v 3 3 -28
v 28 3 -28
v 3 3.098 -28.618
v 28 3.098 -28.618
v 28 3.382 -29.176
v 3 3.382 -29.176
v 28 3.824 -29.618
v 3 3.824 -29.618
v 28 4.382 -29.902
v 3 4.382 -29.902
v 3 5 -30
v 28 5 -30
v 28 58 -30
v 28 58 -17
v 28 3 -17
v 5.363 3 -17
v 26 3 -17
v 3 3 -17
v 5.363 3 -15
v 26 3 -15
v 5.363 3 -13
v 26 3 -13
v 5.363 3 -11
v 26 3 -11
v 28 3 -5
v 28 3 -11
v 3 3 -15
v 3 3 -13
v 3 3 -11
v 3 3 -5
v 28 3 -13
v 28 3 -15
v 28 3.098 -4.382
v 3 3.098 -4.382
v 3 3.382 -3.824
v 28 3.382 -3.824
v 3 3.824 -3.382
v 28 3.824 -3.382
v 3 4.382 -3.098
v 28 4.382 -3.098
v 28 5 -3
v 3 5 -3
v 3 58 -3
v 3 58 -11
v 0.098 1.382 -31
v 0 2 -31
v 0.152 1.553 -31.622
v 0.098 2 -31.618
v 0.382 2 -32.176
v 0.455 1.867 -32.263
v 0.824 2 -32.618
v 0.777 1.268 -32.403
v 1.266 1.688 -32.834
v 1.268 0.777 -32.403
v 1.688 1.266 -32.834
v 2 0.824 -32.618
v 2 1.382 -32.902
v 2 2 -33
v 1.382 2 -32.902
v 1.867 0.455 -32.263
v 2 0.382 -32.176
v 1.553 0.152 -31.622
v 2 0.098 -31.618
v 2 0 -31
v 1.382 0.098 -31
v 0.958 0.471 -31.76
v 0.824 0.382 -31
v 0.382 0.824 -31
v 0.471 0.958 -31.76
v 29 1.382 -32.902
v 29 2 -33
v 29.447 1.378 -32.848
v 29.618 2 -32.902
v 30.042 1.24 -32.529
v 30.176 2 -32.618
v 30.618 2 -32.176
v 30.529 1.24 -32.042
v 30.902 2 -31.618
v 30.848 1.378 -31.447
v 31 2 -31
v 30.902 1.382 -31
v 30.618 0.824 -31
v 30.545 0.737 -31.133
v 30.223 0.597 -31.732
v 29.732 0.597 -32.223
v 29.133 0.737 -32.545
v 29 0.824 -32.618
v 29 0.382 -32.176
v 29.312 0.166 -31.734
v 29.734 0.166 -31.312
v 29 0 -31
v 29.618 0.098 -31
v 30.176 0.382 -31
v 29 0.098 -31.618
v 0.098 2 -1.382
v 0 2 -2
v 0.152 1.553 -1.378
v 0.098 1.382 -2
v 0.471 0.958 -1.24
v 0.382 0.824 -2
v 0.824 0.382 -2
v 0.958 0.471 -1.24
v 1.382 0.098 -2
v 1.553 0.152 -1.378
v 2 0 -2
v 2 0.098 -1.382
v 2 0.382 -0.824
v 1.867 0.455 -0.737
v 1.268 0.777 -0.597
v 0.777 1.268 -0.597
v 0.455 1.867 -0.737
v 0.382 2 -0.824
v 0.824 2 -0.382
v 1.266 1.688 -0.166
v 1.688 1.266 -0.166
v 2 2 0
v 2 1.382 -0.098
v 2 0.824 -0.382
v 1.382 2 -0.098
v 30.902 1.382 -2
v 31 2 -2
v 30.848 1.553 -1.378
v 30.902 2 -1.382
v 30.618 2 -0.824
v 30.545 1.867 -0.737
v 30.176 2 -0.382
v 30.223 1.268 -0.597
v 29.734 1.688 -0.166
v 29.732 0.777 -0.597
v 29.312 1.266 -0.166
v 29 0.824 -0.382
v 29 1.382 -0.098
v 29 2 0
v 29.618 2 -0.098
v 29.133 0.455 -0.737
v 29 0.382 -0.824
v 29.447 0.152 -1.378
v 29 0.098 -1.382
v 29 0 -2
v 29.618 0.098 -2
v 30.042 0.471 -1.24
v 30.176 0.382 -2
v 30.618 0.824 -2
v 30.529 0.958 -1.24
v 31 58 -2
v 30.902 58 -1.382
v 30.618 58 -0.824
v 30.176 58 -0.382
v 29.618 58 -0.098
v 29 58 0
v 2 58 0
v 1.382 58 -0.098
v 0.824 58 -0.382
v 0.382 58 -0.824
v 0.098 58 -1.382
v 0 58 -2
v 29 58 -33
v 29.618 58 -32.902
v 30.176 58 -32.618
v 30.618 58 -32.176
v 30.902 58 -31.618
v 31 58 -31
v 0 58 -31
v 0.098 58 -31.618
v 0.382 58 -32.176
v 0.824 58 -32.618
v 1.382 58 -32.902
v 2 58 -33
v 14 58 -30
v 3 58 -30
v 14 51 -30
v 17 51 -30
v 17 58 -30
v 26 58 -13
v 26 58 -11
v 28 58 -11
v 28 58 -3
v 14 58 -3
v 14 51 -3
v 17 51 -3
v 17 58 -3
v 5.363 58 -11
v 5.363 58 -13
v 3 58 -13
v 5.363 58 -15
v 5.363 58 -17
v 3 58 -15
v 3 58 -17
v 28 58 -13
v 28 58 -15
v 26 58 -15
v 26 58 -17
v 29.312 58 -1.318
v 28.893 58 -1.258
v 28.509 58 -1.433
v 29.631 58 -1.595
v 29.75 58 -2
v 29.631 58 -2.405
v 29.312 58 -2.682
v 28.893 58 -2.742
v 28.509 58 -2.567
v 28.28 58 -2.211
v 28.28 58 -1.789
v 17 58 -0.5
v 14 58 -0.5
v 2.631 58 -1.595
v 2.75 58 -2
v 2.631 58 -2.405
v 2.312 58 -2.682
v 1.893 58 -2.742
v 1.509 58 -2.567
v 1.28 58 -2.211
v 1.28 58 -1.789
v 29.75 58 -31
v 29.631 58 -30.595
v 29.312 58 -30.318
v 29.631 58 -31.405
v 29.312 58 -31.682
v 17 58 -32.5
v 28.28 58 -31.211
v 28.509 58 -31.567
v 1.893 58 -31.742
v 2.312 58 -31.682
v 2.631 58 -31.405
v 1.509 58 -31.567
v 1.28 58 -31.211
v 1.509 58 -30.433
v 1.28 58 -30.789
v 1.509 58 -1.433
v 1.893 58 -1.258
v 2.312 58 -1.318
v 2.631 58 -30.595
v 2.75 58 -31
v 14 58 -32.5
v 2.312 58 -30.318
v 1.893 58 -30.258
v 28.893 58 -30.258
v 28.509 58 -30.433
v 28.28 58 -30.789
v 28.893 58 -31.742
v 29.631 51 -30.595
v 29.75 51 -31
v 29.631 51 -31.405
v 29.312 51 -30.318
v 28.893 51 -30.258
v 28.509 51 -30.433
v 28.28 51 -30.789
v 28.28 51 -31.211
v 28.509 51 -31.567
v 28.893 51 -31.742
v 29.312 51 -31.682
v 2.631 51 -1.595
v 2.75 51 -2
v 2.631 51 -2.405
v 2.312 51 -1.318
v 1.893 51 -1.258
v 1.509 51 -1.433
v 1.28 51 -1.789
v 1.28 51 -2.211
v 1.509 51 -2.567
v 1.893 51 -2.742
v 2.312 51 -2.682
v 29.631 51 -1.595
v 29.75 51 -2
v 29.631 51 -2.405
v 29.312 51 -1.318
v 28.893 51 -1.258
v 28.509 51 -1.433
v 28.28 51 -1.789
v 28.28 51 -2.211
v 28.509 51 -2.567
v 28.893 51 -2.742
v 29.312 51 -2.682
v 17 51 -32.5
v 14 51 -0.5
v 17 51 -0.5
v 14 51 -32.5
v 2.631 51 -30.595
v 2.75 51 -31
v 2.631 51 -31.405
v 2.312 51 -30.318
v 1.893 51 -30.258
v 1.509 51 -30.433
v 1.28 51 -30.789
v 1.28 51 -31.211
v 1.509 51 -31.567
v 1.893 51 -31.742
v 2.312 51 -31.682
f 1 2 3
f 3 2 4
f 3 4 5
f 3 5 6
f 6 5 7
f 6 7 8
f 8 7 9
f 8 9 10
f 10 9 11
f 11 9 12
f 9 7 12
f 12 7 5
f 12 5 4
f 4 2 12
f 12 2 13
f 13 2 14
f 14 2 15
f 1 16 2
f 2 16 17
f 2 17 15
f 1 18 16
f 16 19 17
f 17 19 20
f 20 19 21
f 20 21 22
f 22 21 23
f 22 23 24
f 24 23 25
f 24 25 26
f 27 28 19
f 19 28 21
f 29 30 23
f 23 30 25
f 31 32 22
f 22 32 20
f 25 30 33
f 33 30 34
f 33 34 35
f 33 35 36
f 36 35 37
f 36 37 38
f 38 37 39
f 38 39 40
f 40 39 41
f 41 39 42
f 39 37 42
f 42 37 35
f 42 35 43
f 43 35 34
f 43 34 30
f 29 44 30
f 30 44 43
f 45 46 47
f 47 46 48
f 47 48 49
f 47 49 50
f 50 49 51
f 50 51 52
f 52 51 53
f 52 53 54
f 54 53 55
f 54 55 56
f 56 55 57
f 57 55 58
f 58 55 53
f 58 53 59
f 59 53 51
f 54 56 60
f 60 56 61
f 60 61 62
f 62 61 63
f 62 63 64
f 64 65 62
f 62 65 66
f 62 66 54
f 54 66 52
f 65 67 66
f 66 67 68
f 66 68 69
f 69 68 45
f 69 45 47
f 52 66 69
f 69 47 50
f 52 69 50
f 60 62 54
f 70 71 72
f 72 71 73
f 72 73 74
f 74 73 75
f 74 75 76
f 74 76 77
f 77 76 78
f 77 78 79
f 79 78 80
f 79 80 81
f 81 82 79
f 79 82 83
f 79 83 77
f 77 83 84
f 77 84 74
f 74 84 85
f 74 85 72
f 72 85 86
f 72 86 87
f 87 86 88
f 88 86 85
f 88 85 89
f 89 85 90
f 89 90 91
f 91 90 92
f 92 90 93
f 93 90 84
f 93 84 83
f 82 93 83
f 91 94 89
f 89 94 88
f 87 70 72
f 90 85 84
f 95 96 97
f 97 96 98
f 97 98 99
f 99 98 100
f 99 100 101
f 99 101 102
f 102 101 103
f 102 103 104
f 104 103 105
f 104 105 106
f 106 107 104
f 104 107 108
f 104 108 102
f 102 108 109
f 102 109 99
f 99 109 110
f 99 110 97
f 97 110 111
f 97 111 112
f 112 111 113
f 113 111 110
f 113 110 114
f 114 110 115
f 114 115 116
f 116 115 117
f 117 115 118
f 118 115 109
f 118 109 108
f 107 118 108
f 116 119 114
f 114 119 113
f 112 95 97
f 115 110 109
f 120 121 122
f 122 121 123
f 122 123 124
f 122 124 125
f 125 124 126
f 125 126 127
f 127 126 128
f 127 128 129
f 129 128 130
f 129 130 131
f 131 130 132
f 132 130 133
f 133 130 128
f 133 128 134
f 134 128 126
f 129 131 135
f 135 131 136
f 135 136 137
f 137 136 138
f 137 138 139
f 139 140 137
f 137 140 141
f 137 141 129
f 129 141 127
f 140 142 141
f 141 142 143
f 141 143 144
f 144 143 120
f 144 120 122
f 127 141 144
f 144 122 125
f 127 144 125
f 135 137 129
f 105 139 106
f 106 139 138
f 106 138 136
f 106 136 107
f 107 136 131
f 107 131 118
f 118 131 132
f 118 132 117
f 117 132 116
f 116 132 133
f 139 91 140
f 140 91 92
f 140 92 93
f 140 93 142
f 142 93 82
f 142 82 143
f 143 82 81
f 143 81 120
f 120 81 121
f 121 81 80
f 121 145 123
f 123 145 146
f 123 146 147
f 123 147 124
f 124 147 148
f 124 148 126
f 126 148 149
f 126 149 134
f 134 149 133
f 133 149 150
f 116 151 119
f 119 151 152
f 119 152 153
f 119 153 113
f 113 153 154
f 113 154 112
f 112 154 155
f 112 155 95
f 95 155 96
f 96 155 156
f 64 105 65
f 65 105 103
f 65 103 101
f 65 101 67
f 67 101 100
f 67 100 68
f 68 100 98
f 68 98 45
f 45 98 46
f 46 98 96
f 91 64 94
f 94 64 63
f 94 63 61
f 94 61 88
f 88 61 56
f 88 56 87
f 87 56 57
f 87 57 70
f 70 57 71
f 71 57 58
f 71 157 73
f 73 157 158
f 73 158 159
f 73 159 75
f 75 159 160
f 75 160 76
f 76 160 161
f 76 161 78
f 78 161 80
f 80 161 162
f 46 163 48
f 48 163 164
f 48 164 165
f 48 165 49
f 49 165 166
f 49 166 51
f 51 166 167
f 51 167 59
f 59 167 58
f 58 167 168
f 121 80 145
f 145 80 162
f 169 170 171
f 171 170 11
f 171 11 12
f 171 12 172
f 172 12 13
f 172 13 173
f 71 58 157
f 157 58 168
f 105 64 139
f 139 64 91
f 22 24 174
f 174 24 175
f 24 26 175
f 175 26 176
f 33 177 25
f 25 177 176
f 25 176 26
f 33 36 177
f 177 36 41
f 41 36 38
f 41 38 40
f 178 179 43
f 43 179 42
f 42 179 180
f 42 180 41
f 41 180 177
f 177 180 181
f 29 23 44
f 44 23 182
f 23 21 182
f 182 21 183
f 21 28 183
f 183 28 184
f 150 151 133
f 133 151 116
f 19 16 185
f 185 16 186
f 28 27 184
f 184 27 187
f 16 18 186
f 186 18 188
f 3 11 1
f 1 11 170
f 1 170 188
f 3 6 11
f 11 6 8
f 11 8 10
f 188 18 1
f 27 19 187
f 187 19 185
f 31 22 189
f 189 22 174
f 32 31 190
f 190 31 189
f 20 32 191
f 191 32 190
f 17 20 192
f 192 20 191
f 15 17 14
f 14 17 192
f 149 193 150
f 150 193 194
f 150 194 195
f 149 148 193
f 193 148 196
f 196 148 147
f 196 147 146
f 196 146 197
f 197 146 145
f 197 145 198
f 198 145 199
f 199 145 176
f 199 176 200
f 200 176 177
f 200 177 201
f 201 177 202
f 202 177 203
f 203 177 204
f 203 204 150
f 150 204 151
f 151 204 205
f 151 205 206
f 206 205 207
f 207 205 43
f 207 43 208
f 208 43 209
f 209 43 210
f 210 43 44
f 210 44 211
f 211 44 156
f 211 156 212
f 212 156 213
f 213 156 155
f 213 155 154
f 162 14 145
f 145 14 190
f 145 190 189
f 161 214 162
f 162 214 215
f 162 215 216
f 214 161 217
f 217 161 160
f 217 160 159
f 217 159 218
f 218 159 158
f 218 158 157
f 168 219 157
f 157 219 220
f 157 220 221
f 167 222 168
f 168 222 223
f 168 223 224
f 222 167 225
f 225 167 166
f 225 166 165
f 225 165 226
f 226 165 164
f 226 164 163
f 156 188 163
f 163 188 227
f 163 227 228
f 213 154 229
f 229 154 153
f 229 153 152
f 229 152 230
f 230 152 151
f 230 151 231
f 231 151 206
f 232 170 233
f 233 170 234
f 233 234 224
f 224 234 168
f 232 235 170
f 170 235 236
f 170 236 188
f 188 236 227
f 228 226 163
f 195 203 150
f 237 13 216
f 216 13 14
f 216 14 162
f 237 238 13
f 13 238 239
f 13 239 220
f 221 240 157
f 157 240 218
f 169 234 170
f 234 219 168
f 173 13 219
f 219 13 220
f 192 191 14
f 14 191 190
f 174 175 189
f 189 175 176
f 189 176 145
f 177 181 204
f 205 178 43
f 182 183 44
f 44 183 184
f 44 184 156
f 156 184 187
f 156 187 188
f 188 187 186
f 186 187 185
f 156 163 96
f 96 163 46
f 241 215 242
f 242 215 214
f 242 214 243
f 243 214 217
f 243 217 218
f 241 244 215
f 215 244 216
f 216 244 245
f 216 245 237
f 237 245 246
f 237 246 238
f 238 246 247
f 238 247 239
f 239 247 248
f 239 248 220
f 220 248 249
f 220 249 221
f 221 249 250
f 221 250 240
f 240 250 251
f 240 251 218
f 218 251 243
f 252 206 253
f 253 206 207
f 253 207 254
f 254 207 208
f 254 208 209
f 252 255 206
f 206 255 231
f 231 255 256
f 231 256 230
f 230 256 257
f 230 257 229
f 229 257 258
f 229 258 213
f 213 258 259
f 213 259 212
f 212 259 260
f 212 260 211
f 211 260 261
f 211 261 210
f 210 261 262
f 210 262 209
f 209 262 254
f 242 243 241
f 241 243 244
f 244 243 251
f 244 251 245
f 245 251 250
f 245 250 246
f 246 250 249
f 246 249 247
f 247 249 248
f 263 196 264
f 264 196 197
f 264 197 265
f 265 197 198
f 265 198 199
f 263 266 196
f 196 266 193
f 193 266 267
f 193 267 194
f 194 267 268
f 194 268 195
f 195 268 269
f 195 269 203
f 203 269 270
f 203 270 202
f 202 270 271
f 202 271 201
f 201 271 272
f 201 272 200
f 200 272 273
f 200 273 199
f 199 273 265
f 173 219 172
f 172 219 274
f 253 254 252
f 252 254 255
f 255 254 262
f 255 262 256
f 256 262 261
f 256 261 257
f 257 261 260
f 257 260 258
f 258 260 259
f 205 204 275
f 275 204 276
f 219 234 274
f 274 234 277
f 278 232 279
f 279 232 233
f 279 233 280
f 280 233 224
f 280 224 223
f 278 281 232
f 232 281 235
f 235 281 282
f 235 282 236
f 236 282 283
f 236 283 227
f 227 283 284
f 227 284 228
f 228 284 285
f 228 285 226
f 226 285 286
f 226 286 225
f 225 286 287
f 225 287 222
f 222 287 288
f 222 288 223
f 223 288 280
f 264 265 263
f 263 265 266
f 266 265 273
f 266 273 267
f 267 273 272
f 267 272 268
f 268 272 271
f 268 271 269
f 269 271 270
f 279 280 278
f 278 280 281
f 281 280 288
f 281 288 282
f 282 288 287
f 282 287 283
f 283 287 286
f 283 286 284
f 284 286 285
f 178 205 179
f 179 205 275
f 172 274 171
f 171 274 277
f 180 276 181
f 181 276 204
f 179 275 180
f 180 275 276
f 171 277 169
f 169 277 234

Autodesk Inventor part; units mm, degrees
ref_plane "YZ Plane" through (0, 0, 0) normal (1, 0, 0) x (0, 1, 0)
ref_plane "XZ Plane" through (0, 0, 0) normal (0, 1, 0) x (-1, 0, 0)
ref_plane "XY Plane" through (0, 0, 0) normal (0, 0, 1) x (1, 0, 0)
sketch "Boceto1" plane through (0, 0, 0) normal (0, 1, 0) x (-1, 0, 0)
  line L0 (0, 0) -> (-31, 0)
  line L1 (-31, 0) -> (-31, -33)
  line L2 (-31, -33) -> (0, -33)
  line L3 (0, -33) -> (0, 0)
  line L4 (0, -33) -> (0, -30)
  line L5 (0, -30) -> (0, -15)
  line L6 (0, -15) -> (0, -13)
  line L7 (0, -13) -> (0, -3)
  line L8 (0, -3) -> (0, 0)
  line L9 (0, -30) -> (-31, -30)
  line L10 (0, -15) -> (-31, -15)
  line L11 (0, -13) -> (-31, -13)
  line L12 (0, -3) -> (-31, -3)
  line L13 (0, -33) -> (-3, -33)
  line L14 (0, -33) -> (-3, -33)
  line L15 (-3, -33) -> (-3, 0)
  line L16 (-31, -33) -> (-28, -33)
  line L17 (-28, -33) -> (-28, 0)
  line L18 (-3, -15) -> (-3, -17)
  line L19 (-3, -17) -> (-5.3627, -17)
  line L20 (-5.3627, -17) -> (-5.3627, -15)
  line L21 (-5.3627, -13) -> (-5.3627, -11)
  line L22 (-5.3627, -11) -> (-3, -11)
  line L23 (-28, -15) -> (-26, -15)
  line L24 (-26, -15) -> (-26, -17)
  line L25 (-26, -17) -> (-28, -17)
  line L26 (-26, -13) -> (-26, -11)
  line L27 (-26, -11) -> (-28, -11)
  point P0 (-3, -30)
  point P1 (-28, -30)
  point P2 (-28, -13)
  point P3 (-28, -3)
  point P4 (-3, -3)
  point P5 (-3, -13)
  dimension "d0" = 31
  dimension "d1" = 33
  dimension "d2" = 3
  dimension "d3" = 15
  dimension "d4" = 2
  dimension "d5" = 10
  dimension "d6" = 3
  dimension "d7" = 3
  dimension "d8" = 2
  dimension "d9" = 2
  dimension "d10" = 2
  dimension "d11" = 2
  dimension "d12" = 2
extrude "Extrusión1" add sketch "Boceto1" along normal blind 58 contours L3 L12 L15 L0 | L15 L12 L17 L0 | L3 L11 L15 L12 | L17 L12 L1 L0 | L3 L10 L15 L11 | L17 L11 L1 L12 | L15 L11 L21 L22 | L3 L9 L15 L10 | L27 L26 L11 L17 | L3 L2 L15 L9 | L15 L19 L20 L10 | L11 L17 L10 L1 | L15 L2 L17 L9 | L10 L17 L9 L1 | L10 L24 L25 L17 | L17 L2 L1 L9
sketch "Boceto2" plane through (31, 0, 0) normal (1, 0, 0) x (0, 0, -1)
  line L0 (33, 0) -> (33, 58) projected
  line L1 (0, 0) -> (0, 58) projected
  line L2 (33, 0) -> (0, 0)
  line L3 (0, 0) -> (0, 3)
  line L4 (0, 3) -> (33, 3)
  line L5 (33, 3) -> (33, 0)
  dimension "d15" = 3
extrude "Extrusión2" add sketch "Boceto2" against normal up to surface (28 mm away)
fillet "Empalme1" radius 2 10 edges at (31, 29, 0) (15.5, 0, 0) (31, 0, -16.5) (31, 29, -33) (15.5, 0, -33) (0, 0, -16.5) (0, 29, 0) (0, 29, -33) (15.5, 3, -3) (15.5, 3, -30)
sketch "Boceto4" plane through (0, 58, 0) normal (0, 1, 0) x (1, 0, 0)
  line L0 (0, 31) -> (2, 31) projected
  circle A0 centre (2, 31) radius 0.75
  line L1 (29, 31) -> (31, 31) projected
  circle A1 centre (29, 31) radius 0.75
  line L2 (2, 0) -> (2, 2) projected
  circle A2 centre (2, 2) radius 0.75
  line L3 (2, 2) -> (29, 2) projected
  circle A3 centre (29, 2) radius 0.75
  line L4 (2, 31) -> (15.5, 31)
  line L5 (29, 31) -> (2, 31) projected
  line L6 (14, 29.5) -> (17, 29.5)
  line L7 (17, 29.5) -> (17, 32.5)
  line L8 (17, 32.5) -> (14, 32.5)
  line L9 (14, 32.5) -> (14, 29.5)
  line L10 (14, 29.5) -> (17, 32.5) construction
  line L11 (17, 29.5) -> (14, 32.5) construction
  line L12 (14, 0.5) -> (17, 0.5)
  line L13 (17, 0.5) -> (17, 3.5)
  line L14 (17, 3.5) -> (14, 3.5)
  line L15 (14, 3.5) -> (14, 0.5)
  line L16 (14, 0.5) -> (17, 3.5) construction
  line L17 (17, 0.5) -> (14, 3.5) construction
  point P0 (0, 0)
  point P1 (15.5, 2)
  dimension "d19" = 1.5
  dimension "d20" = 1.5
  dimension "d21" = 1.5
  dimension "d22" = 1.5
  dimension "d23" = 3
  dimension "d24" = 3
  dimension "d25" = 3
  dimension "d26" = 3
extrude "Extrusión3" cut sketch "Boceto4" against normal blind 7
sketch "Boceto5" plane through (0, 58, 0) normal (0, 1, 0) x (1, 0, 0)
  line L0 (3, 15) -> (5.3627, 15) projected
  line L1 (3, 28) -> (28, 28) projected
  line L2 (2, 33) -> (29, 33) projected
  arc A0 (2, 33) -> (0, 31) centre (2, 31) ccw projected
  arc A1 (2, 33) -> (0, 31) centre (2, 31) ccw projected
  arc A2 (2, 33) -> (0, 31) centre (2, 31) ccw projected
  line L3 (5.3627, 13) -> (3, 13) projected
  line L4 (5.3627, 11) -> (5.3627, 13) projected
  line L5 (3, 11) -> (5.3627, 11) projected
  line L6 (3, 3) -> (3, 11) projected
  arc A3 (0, 2) -> (2, 0) centre (2, 2) ccw projected
  circle A4 centre (2, 2) radius 0.75 projected
  circle A5 centre (2, 2) radius 0.75 projected
  circle A6 centre (2, 2) radius 0.75 projected
  circle A7 centre (2, 2) radius 0.75 projected
  circle A8 centre (2, 2) radius 0.75 projected
  line L7 (3, 5) -> (3, 11) projected
  line L8 (3, 11) -> (5.3627, 11) projected
  line L9 (5.3627, 11) -> (5.3627, 13) projected
  line L10 (5.3627, 13) -> (3, 13) projected
  line L11 (5.3627, 11) -> (5.3627, 13) projected
  line L12 (5.3627, 11) -> (5.3627, 13) projected
  line L13 (3, 11) -> (5.3627, 11) projected
  line L14 (3, 11) -> (5.3627, 11) projected
  line L15 (3, 3) -> (3, 5) projected
  line L16 (3, 5) -> (3, 11) projected
  line L17 (3, 3) -> (3, 11) projected
  arc A9 (0, 2) -> (2, 0) centre (2, 2) ccw projected
  arc A10 (0, 2) -> (2, 0) centre (2, 2) ccw projected
  line L18 (5.3627, 13) -> (3, 13) projected
  line L19 (5.3627, 13) -> (3, 13) projected
  line L20 (3, 3) -> (28, 3) projected
  line L21 (14, 3) -> (3, 3) projected
  line L22 (28, 3) -> (17, 3) projected
  line L23 (2, 0) -> (29, 0) projected
  line L24 (14, 3) -> (17, 3) projected
  line L25 (17, 3) -> (17, 0.5) projected
  line L26 (17, 3) -> (17, 0.5) projected
  line L27 (14, 0.5) -> (14, 3) projected
  line L28 (14, 0.5) -> (14, 3) projected
  line L29 (17, 0.5) -> (14, 0.5) projected
  line L30 (17, 0.5) -> (14, 0.5) projected
  line L31 (14, 3) -> (17, 3) projected
  line L32 (28, 3) -> (17, 3) projected
  line L33 (3, 3) -> (28, 3) projected
  line L34 (14, 3) -> (3, 3) projected
  line L35 (14, 3) -> (17, 3) projected
  line L36 (14, 0.5) -> (14, 3) projected
  line L37 (17, 0.5) -> (14, 0.5) projected
  line L38 (17, 3) -> (17, 0.5) projected
  line L39 (17, 3) -> (17, 0.5) projected
  line L40 (17, 3) -> (17, 0.5) projected
  line L41 (14, 0.5) -> (14, 3) projected
  line L42 (14, 0.5) -> (14, 3) projected
  line L43 (17, 0.5) -> (14, 0.5) projected
  line L44 (17, 0.5) -> (14, 0.5) projected
  line L45 (28, 5) -> (3, 5) projected
  line L46 (28, 5) -> (28, 3) projected
  line L47 (3, 3) -> (3, 5) projected
  arc A11 (0, 2) -> (2, 0) centre (2, 2) ccw projected
  line L48 (2, 0) -> (29, 0) projected
  line L49 (29, 0) -> (2, 0) projected
  line L50 (26, 17) -> (26, 15) projected
  line L51 (28, 17) -> (26, 17) projected
  line L52 (28, 30) -> (28, 17) projected
  arc A12 (31, 31) -> (29, 33) centre (29, 31) ccw projected
  line L53 (31, 2) -> (31, 31) projected
  circle A13 centre (29, 31) radius 0.75 projected
  circle A14 centre (29, 31) radius 0.75 projected
  circle A15 centre (29, 31) radius 0.75 projected
  circle A16 centre (29, 31) radius 0.75 projected
  circle A17 centre (29, 31) radius 0.75 projected
  line L54 (31, 31) -> (31, 2) projected
  line L55 (31, 31) -> (31, 2) projected
  line L56 (31, 2) -> (31, 31) projected
  line L57 (26, 17) -> (26, 15) projected
  line L58 (26, 17) -> (26, 15) projected
  line L59 (28, 17) -> (26, 17) projected
  line L60 (28, 17) -> (26, 17) projected
  line L61 (28, 30) -> (28, 28) projected
  line L62 (28, 28) -> (28, 17) projected
  line L63 (28, 30) -> (28, 17) projected
  arc A18 (31, 31) -> (29, 33) centre (29, 31) ccw projected
  arc A19 (31, 31) -> (29, 33) centre (29, 31) ccw projected
  line L64 (28, 11) -> (28, 3) projected
  line L65 (26, 11) -> (28, 11) projected
  line L66 (26, 13) -> (26, 11) projected
  line L67 (28, 13) -> (26, 13) projected
  line L68 (28, 15) -> (28, 13) projected
  line L69 (26, 15) -> (28, 15) projected
  arc A20 (29, 0) -> (31, 2) centre (29, 2) ccw projected
  circle A21 centre (29, 2) radius 0.75 projected
  circle A22 centre (29, 2) radius 0.75 projected
  circle A23 centre (29, 2) radius 0.75 projected
  circle A24 centre (29, 2) radius 0.75 projected
  circle A25 centre (29, 2) radius 0.75 projected
  line L70 (26, 13) -> (26, 11) projected
  line L71 (26, 13) -> (26, 11) projected
  line L72 (28, 15) -> (28, 13) projected
  line L73 (28, 15) -> (28, 13) projected
  line L74 (28, 13) -> (26, 13) projected
  line L75 (28, 13) -> (26, 13) projected
  line L76 (26, 11) -> (28, 11) projected
  line L77 (26, 11) -> (28, 11) projected
  line L78 (28, 5) -> (28, 3) projected
  line L79 (28, 11) -> (28, 3) projected
  line L80 (28, 11) -> (28, 5) projected
  arc A26 (29, 0) -> (31, 2) centre (29, 2) ccw projected
  arc A27 (29, 0) -> (31, 2) centre (29, 2) ccw projected
  line L81 (26, 15) -> (28, 15) projected
  line L82 (26, 15) -> (28, 15) projected
  line L83 (28, 30) -> (3, 30) projected
  line L84 (3, 30) -> (14, 30) projected
  line L85 (28, 30) -> (3, 30) projected
  line L86 (17, 30) -> (28, 30) projected
  line L87 (17, 30) -> (14, 30) projected
  line L88 (2, 33) -> (29, 33) projected
  line L89 (29, 33) -> (2, 33) projected
  line L90 (3, 28) -> (3, 30) projected
  line L91 (3, 17) -> (3, 30) projected
  line L92 (3, 17) -> (3, 28) projected
  line L93 (5.3627, 17) -> (3, 17) projected
  line L94 (5.3627, 17) -> (3, 17) projected
  line L95 (5.3627, 15) -> (5.3627, 17) projected
  line L96 (5.3627, 15) -> (5.3627, 17) projected
  line L97 (3, 15) -> (5.3627, 15) projected
  line L98 (3, 15) -> (5.3627, 15) projected
  line L99 (3, 13) -> (3, 15) projected
  line L100 (3, 13) -> (3, 15) projected
  line L101 (17, 30) -> (14, 30) projected
  line L102 (14, 32.5) -> (17, 32.5) projected
  line L103 (17, 30) -> (14, 30) projected
  line L104 (17, 32.5) -> (17, 30) projected
  line L105 (14, 32.5) -> (17, 32.5) projected
  line L106 (14, 30) -> (14, 32.5) projected
  line L107 (17, 30) -> (28, 30) projected
  line L108 (29, 33) -> (2, 33) projected
  arc A28 (29, 0) -> (31, 2) centre (29, 2) ccw projected
  line L109 (31, 2) -> (31, 31) projected
  arc A29 (31, 31) -> (29, 33) centre (29, 31) ccw projected
  line L110 (29, 33) -> (2, 33) projected
  arc A30 (2, 33) -> (0, 31) centre (2, 31) ccw projected
  line L111 (0, 31) -> (0, 2) projected
  arc A31 (0, 2) -> (2, 0) centre (2, 2) ccw projected
  line L112 (2, 0) -> (29, 0) projected
  circle A32 centre (2, 31) radius 0.75 projected
  circle A33 centre (29, 2) radius 0.75 projected
  circle A34 centre (2, 2) radius 0.75 projected
  circle A35 centre (29, 31) radius 0.75 projected
  line L113 (14, 30) -> (14, 32.5) projected
  line L114 (14, 32.5) -> (17, 32.5) projected
  line L115 (17, 32.5) -> (17, 30) projected
  line L116 (17, 30) -> (28, 30) projected
  line L117 (28, 30) -> (28, 17) projected
  line L118 (28, 17) -> (26, 17) projected
  line L119 (26, 17) -> (26, 15) projected
  line L120 (26, 15) -> (28, 15) projected
  line L121 (28, 15) -> (28, 13) projected
  line L122 (28, 13) -> (26, 13) projected
  line L123 (26, 13) -> (26, 11) projected
  line L124 (26, 11) -> (28, 11) projected
  line L125 (28, 11) -> (28, 3) projected
  line L126 (28, 3) -> (17, 3) projected
  line L127 (17, 3) -> (17, 0.5) projected
  line L128 (17, 0.5) -> (14, 0.5) projected
  line L129 (14, 0.5) -> (14, 3) projected
  line L130 (14, 3) -> (3, 3) projected
  line L131 (3, 3) -> (3, 11) projected
  line L132 (3, 11) -> (5.3627, 11) projected
  line L133 (5.3627, 11) -> (5.3627, 13) projected
  line L134 (5.3627, 13) -> (3, 13) projected
  line L135 (3, 13) -> (3, 15) projected
  line L136 (3, 15) -> (5.3627, 15) projected
  line L137 (5.3627, 15) -> (5.3627, 17) projected
  line L138 (5.3627, 17) -> (3, 17) projected
  line L139 (3, 17) -> (3, 30) projected
  line L140 (3, 30) -> (14, 30) projected
  line L141 (5.3627, 15) -> (5.3627, 17) projected
  line L142 (3, 15) -> (5.3627, 15) projected
  line L143 (3, 13) -> (3, 15) projected
  line L144 (5.3627, 17) -> (3, 17) projected
  circle A36 centre (2, 31) radius 0.75 projected
  circle A37 centre (2, 31) radius 0.75 projected
  circle A38 centre (2, 31) radius 0.75 projected
  arc A39 (2, 33) -> (0, 31) centre (2, 31) ccw projected
  line L145 (14, 32.5) -> (17, 32.5) projected
  line L146 (14, 32.5) -> (17, 32.5) projected
  line L147 (14, 32.5) -> (17, 32.5) projected
  line L148 (3, 28) -> (3, 30) projected
  line L149 (5.3627, 17) -> (3, 17) projected
  line L150 (5.3627, 15) -> (5.3627, 17) projected
  arc A40 (2, 33) -> (0, 31) centre (2, 31) ccw projected
  line L151 (2, 31) -> (2, 33) projected
  line L152 (0, 31) -> (2, 31) projected
  line L153 (28, 30) -> (28, 28) projected
  line L154 (26, 17) -> (26, 15) projected
  line L155 (28, 17) -> (26, 17) projected
  line L156 (26, 15) -> (28, 15) projected
  line L157 (26, 13) -> (26, 11) projected
  line L158 (28, 15) -> (28, 13) projected
  line L159 (28, 13) -> (26, 13) projected
  line L160 (26, 11) -> (28, 11) projected
  line L161 (28, 11) -> (28, 5) projected
  line L162 (29, 0) -> (2, 0) projected
  arc A41 (29, 0) -> (31, 2) centre (29, 2) ccw projected
  line L163 (29, 31) -> (2, 31) projected
  line L164 (2, 31) -> (2, 2) projected
  line L165 (29, 2) -> (29, 31) projected
  line L166 (2, 2) -> (29, 2) projected
  line L167 (31, 2) -> (29, 2) projected
  line L168 (29, 2) -> (29, 0) projected
  line L169 (2, 0) -> (2, 2) projected
  line L170 (2, 2) -> (0, 2) projected
  line L171 (29, 33) -> (29, 31) projected
  line L172 (29, 31) -> (31, 31) projected
  line L173 (0, 31) -> (2, 31) projected
  line L174 (2, 31) -> (2, 33) projected
  line L175 (28, 30) -> (28, 28) projected
  line L176 (28, 30) -> (3, 30) projected
  line L177 (3, 28) -> (3, 30) projected
  line L178 (3, 28) -> (28, 28) projected
  line L179 (3, 3) -> (3, 5) projected
  line L180 (3, 3) -> (28, 3) projected
  line L181 (28, 5) -> (28, 3) projected
  line L182 (28, 5) -> (3, 5) projected
  arc A42 (31, 31) -> (29, 33) centre (29, 31) ccw projected
  line L183 (29, 31) -> (31, 31) projected
  line L184 (29, 33) -> (29, 31) projected
  line L185 (2, 2) -> (29, 2) projected
  line L186 (2, 31) -> (2, 2) projected
  line L187 (29, 31) -> (2, 31) projected
  line L188 (29, 2) -> (29, 31) projected
  line L189 (2, 2) -> (0, 2) projected
  line L190 (0, 2) -> (0, 31) projected
  line L191 (0, 31) -> (2, 31) projected
  line L192 (2, 31) -> (2, 2) projected
  line L193 (29, 31) -> (31, 31) projected
  line L194 (31, 31) -> (31, 2) projected
  line L195 (31, 2) -> (29, 2) projected
  line L196 (29, 2) -> (29, 31) projected
  line L197 (2, 2) -> (0, 2) projected
  line L198 (2, 0) -> (2, 2) projected
  arc A43 (0, 2) -> (2, 0) centre (2, 2) ccw projected
  arc A44 (29, 0) -> (31, 2) centre (29, 2) ccw projected
  line L199 (29, 2) -> (29, 0) projected
  line L200 (31, 2) -> (29, 2) projected
  line L201 (29, 2) -> (29, 0) projected
  line L202 (29, 0) -> (2, 0) projected
  line L203 (2, 0) -> (2, 2) projected
  line L204 (2, 2) -> (29, 2) projected
  line L205 (3, 28) -> (28, 28) projected
  line L206 (3, 17) -> (3, 28) projected
  line L207 (5.3627, 17) -> (3, 17) projected
  line L208 (5.3627, 15) -> (5.3627, 17) projected
  line L209 (3, 15) -> (5.3627, 15) projected
  line L210 (3, 13) -> (3, 15) projected
  line L211 (5.3627, 13) -> (3, 13) projected
  line L212 (5.3627, 11) -> (5.3627, 13) projected
  line L213 (3, 11) -> (5.3627, 11) projected
  line L214 (3, 5) -> (3, 11) projected
  line L215 (28, 5) -> (3, 5) projected
  line L216 (28, 11) -> (28, 5) projected
  line L217 (26, 11) -> (28, 11) projected
  line L218 (26, 13) -> (26, 11) projected
  line L219 (28, 13) -> (26, 13) projected
  line L220 (28, 15) -> (28, 13) projected
  line L221 (26, 15) -> (28, 15) projected
  line L222 (26, 17) -> (26, 15) projected
  line L223 (28, 17) -> (26, 17) projected
  line L224 (28, 28) -> (28, 17) projected
  line L225 (3, 17) -> (3, 28) projected
  circle A45 centre (2, 31) radius 0.75 projected
  circle A46 centre (2, 31) radius 0.75 projected
  line L226 (3, 17) -> (3, 30) projected
  line L227 (17, 32.5) -> (17, 30) projected
  line L228 (17, 32.5) -> (17, 30) projected
  line L229 (17, 32.5) -> (17, 30) projected
  line L230 (17, 32.5) -> (17, 30) projected
  line L231 (14, 30) -> (14, 32.5) projected
  line L232 (14, 30) -> (14, 32.5) projected
  line L233 (14, 30) -> (14, 32.5) projected
  line L234 (14, 30) -> (14, 32.5) projected
  line L235 (3, 30) -> (14, 30) projected
  arc A47 (31, 31) -> (29, 33) centre (29, 31) ccw projected
  line L236 (2, 31) -> (2, 33) projected
  line L237 (2, 33) -> (29, 33) projected
  line L238 (29, 33) -> (29, 31) projected
  line L239 (29, 31) -> (2, 31) projected
  line L240 (28, 28) -> (28, 17) projected
  line L241 (3, 13) -> (3, 15) projected
  point P0 (0, 0)
equation "\"Radio_pliegue\" = Grosor"
equation "\"Anchura_desahogo_plegado\" = Grosor"
equation "\"Profundidad_desahogo_plegado\" = 0.5 * Grosor"
equation "\"Tamaño_destalonado\" = 4 * Grosor"
equation "\"Remanente_mínimo\" = 2 * Grosor"
equation "\"Radiodetransición\" = Radio_pliegue"
equation "\"Tamaño_de_radio_de_Jacobi\" = Radio_pliegue"
equation "\"TamañoSeparación\" = Grosor"
equation "\"Grosor\" = 0.5"
properties part number "CajaNodoReceptor"
